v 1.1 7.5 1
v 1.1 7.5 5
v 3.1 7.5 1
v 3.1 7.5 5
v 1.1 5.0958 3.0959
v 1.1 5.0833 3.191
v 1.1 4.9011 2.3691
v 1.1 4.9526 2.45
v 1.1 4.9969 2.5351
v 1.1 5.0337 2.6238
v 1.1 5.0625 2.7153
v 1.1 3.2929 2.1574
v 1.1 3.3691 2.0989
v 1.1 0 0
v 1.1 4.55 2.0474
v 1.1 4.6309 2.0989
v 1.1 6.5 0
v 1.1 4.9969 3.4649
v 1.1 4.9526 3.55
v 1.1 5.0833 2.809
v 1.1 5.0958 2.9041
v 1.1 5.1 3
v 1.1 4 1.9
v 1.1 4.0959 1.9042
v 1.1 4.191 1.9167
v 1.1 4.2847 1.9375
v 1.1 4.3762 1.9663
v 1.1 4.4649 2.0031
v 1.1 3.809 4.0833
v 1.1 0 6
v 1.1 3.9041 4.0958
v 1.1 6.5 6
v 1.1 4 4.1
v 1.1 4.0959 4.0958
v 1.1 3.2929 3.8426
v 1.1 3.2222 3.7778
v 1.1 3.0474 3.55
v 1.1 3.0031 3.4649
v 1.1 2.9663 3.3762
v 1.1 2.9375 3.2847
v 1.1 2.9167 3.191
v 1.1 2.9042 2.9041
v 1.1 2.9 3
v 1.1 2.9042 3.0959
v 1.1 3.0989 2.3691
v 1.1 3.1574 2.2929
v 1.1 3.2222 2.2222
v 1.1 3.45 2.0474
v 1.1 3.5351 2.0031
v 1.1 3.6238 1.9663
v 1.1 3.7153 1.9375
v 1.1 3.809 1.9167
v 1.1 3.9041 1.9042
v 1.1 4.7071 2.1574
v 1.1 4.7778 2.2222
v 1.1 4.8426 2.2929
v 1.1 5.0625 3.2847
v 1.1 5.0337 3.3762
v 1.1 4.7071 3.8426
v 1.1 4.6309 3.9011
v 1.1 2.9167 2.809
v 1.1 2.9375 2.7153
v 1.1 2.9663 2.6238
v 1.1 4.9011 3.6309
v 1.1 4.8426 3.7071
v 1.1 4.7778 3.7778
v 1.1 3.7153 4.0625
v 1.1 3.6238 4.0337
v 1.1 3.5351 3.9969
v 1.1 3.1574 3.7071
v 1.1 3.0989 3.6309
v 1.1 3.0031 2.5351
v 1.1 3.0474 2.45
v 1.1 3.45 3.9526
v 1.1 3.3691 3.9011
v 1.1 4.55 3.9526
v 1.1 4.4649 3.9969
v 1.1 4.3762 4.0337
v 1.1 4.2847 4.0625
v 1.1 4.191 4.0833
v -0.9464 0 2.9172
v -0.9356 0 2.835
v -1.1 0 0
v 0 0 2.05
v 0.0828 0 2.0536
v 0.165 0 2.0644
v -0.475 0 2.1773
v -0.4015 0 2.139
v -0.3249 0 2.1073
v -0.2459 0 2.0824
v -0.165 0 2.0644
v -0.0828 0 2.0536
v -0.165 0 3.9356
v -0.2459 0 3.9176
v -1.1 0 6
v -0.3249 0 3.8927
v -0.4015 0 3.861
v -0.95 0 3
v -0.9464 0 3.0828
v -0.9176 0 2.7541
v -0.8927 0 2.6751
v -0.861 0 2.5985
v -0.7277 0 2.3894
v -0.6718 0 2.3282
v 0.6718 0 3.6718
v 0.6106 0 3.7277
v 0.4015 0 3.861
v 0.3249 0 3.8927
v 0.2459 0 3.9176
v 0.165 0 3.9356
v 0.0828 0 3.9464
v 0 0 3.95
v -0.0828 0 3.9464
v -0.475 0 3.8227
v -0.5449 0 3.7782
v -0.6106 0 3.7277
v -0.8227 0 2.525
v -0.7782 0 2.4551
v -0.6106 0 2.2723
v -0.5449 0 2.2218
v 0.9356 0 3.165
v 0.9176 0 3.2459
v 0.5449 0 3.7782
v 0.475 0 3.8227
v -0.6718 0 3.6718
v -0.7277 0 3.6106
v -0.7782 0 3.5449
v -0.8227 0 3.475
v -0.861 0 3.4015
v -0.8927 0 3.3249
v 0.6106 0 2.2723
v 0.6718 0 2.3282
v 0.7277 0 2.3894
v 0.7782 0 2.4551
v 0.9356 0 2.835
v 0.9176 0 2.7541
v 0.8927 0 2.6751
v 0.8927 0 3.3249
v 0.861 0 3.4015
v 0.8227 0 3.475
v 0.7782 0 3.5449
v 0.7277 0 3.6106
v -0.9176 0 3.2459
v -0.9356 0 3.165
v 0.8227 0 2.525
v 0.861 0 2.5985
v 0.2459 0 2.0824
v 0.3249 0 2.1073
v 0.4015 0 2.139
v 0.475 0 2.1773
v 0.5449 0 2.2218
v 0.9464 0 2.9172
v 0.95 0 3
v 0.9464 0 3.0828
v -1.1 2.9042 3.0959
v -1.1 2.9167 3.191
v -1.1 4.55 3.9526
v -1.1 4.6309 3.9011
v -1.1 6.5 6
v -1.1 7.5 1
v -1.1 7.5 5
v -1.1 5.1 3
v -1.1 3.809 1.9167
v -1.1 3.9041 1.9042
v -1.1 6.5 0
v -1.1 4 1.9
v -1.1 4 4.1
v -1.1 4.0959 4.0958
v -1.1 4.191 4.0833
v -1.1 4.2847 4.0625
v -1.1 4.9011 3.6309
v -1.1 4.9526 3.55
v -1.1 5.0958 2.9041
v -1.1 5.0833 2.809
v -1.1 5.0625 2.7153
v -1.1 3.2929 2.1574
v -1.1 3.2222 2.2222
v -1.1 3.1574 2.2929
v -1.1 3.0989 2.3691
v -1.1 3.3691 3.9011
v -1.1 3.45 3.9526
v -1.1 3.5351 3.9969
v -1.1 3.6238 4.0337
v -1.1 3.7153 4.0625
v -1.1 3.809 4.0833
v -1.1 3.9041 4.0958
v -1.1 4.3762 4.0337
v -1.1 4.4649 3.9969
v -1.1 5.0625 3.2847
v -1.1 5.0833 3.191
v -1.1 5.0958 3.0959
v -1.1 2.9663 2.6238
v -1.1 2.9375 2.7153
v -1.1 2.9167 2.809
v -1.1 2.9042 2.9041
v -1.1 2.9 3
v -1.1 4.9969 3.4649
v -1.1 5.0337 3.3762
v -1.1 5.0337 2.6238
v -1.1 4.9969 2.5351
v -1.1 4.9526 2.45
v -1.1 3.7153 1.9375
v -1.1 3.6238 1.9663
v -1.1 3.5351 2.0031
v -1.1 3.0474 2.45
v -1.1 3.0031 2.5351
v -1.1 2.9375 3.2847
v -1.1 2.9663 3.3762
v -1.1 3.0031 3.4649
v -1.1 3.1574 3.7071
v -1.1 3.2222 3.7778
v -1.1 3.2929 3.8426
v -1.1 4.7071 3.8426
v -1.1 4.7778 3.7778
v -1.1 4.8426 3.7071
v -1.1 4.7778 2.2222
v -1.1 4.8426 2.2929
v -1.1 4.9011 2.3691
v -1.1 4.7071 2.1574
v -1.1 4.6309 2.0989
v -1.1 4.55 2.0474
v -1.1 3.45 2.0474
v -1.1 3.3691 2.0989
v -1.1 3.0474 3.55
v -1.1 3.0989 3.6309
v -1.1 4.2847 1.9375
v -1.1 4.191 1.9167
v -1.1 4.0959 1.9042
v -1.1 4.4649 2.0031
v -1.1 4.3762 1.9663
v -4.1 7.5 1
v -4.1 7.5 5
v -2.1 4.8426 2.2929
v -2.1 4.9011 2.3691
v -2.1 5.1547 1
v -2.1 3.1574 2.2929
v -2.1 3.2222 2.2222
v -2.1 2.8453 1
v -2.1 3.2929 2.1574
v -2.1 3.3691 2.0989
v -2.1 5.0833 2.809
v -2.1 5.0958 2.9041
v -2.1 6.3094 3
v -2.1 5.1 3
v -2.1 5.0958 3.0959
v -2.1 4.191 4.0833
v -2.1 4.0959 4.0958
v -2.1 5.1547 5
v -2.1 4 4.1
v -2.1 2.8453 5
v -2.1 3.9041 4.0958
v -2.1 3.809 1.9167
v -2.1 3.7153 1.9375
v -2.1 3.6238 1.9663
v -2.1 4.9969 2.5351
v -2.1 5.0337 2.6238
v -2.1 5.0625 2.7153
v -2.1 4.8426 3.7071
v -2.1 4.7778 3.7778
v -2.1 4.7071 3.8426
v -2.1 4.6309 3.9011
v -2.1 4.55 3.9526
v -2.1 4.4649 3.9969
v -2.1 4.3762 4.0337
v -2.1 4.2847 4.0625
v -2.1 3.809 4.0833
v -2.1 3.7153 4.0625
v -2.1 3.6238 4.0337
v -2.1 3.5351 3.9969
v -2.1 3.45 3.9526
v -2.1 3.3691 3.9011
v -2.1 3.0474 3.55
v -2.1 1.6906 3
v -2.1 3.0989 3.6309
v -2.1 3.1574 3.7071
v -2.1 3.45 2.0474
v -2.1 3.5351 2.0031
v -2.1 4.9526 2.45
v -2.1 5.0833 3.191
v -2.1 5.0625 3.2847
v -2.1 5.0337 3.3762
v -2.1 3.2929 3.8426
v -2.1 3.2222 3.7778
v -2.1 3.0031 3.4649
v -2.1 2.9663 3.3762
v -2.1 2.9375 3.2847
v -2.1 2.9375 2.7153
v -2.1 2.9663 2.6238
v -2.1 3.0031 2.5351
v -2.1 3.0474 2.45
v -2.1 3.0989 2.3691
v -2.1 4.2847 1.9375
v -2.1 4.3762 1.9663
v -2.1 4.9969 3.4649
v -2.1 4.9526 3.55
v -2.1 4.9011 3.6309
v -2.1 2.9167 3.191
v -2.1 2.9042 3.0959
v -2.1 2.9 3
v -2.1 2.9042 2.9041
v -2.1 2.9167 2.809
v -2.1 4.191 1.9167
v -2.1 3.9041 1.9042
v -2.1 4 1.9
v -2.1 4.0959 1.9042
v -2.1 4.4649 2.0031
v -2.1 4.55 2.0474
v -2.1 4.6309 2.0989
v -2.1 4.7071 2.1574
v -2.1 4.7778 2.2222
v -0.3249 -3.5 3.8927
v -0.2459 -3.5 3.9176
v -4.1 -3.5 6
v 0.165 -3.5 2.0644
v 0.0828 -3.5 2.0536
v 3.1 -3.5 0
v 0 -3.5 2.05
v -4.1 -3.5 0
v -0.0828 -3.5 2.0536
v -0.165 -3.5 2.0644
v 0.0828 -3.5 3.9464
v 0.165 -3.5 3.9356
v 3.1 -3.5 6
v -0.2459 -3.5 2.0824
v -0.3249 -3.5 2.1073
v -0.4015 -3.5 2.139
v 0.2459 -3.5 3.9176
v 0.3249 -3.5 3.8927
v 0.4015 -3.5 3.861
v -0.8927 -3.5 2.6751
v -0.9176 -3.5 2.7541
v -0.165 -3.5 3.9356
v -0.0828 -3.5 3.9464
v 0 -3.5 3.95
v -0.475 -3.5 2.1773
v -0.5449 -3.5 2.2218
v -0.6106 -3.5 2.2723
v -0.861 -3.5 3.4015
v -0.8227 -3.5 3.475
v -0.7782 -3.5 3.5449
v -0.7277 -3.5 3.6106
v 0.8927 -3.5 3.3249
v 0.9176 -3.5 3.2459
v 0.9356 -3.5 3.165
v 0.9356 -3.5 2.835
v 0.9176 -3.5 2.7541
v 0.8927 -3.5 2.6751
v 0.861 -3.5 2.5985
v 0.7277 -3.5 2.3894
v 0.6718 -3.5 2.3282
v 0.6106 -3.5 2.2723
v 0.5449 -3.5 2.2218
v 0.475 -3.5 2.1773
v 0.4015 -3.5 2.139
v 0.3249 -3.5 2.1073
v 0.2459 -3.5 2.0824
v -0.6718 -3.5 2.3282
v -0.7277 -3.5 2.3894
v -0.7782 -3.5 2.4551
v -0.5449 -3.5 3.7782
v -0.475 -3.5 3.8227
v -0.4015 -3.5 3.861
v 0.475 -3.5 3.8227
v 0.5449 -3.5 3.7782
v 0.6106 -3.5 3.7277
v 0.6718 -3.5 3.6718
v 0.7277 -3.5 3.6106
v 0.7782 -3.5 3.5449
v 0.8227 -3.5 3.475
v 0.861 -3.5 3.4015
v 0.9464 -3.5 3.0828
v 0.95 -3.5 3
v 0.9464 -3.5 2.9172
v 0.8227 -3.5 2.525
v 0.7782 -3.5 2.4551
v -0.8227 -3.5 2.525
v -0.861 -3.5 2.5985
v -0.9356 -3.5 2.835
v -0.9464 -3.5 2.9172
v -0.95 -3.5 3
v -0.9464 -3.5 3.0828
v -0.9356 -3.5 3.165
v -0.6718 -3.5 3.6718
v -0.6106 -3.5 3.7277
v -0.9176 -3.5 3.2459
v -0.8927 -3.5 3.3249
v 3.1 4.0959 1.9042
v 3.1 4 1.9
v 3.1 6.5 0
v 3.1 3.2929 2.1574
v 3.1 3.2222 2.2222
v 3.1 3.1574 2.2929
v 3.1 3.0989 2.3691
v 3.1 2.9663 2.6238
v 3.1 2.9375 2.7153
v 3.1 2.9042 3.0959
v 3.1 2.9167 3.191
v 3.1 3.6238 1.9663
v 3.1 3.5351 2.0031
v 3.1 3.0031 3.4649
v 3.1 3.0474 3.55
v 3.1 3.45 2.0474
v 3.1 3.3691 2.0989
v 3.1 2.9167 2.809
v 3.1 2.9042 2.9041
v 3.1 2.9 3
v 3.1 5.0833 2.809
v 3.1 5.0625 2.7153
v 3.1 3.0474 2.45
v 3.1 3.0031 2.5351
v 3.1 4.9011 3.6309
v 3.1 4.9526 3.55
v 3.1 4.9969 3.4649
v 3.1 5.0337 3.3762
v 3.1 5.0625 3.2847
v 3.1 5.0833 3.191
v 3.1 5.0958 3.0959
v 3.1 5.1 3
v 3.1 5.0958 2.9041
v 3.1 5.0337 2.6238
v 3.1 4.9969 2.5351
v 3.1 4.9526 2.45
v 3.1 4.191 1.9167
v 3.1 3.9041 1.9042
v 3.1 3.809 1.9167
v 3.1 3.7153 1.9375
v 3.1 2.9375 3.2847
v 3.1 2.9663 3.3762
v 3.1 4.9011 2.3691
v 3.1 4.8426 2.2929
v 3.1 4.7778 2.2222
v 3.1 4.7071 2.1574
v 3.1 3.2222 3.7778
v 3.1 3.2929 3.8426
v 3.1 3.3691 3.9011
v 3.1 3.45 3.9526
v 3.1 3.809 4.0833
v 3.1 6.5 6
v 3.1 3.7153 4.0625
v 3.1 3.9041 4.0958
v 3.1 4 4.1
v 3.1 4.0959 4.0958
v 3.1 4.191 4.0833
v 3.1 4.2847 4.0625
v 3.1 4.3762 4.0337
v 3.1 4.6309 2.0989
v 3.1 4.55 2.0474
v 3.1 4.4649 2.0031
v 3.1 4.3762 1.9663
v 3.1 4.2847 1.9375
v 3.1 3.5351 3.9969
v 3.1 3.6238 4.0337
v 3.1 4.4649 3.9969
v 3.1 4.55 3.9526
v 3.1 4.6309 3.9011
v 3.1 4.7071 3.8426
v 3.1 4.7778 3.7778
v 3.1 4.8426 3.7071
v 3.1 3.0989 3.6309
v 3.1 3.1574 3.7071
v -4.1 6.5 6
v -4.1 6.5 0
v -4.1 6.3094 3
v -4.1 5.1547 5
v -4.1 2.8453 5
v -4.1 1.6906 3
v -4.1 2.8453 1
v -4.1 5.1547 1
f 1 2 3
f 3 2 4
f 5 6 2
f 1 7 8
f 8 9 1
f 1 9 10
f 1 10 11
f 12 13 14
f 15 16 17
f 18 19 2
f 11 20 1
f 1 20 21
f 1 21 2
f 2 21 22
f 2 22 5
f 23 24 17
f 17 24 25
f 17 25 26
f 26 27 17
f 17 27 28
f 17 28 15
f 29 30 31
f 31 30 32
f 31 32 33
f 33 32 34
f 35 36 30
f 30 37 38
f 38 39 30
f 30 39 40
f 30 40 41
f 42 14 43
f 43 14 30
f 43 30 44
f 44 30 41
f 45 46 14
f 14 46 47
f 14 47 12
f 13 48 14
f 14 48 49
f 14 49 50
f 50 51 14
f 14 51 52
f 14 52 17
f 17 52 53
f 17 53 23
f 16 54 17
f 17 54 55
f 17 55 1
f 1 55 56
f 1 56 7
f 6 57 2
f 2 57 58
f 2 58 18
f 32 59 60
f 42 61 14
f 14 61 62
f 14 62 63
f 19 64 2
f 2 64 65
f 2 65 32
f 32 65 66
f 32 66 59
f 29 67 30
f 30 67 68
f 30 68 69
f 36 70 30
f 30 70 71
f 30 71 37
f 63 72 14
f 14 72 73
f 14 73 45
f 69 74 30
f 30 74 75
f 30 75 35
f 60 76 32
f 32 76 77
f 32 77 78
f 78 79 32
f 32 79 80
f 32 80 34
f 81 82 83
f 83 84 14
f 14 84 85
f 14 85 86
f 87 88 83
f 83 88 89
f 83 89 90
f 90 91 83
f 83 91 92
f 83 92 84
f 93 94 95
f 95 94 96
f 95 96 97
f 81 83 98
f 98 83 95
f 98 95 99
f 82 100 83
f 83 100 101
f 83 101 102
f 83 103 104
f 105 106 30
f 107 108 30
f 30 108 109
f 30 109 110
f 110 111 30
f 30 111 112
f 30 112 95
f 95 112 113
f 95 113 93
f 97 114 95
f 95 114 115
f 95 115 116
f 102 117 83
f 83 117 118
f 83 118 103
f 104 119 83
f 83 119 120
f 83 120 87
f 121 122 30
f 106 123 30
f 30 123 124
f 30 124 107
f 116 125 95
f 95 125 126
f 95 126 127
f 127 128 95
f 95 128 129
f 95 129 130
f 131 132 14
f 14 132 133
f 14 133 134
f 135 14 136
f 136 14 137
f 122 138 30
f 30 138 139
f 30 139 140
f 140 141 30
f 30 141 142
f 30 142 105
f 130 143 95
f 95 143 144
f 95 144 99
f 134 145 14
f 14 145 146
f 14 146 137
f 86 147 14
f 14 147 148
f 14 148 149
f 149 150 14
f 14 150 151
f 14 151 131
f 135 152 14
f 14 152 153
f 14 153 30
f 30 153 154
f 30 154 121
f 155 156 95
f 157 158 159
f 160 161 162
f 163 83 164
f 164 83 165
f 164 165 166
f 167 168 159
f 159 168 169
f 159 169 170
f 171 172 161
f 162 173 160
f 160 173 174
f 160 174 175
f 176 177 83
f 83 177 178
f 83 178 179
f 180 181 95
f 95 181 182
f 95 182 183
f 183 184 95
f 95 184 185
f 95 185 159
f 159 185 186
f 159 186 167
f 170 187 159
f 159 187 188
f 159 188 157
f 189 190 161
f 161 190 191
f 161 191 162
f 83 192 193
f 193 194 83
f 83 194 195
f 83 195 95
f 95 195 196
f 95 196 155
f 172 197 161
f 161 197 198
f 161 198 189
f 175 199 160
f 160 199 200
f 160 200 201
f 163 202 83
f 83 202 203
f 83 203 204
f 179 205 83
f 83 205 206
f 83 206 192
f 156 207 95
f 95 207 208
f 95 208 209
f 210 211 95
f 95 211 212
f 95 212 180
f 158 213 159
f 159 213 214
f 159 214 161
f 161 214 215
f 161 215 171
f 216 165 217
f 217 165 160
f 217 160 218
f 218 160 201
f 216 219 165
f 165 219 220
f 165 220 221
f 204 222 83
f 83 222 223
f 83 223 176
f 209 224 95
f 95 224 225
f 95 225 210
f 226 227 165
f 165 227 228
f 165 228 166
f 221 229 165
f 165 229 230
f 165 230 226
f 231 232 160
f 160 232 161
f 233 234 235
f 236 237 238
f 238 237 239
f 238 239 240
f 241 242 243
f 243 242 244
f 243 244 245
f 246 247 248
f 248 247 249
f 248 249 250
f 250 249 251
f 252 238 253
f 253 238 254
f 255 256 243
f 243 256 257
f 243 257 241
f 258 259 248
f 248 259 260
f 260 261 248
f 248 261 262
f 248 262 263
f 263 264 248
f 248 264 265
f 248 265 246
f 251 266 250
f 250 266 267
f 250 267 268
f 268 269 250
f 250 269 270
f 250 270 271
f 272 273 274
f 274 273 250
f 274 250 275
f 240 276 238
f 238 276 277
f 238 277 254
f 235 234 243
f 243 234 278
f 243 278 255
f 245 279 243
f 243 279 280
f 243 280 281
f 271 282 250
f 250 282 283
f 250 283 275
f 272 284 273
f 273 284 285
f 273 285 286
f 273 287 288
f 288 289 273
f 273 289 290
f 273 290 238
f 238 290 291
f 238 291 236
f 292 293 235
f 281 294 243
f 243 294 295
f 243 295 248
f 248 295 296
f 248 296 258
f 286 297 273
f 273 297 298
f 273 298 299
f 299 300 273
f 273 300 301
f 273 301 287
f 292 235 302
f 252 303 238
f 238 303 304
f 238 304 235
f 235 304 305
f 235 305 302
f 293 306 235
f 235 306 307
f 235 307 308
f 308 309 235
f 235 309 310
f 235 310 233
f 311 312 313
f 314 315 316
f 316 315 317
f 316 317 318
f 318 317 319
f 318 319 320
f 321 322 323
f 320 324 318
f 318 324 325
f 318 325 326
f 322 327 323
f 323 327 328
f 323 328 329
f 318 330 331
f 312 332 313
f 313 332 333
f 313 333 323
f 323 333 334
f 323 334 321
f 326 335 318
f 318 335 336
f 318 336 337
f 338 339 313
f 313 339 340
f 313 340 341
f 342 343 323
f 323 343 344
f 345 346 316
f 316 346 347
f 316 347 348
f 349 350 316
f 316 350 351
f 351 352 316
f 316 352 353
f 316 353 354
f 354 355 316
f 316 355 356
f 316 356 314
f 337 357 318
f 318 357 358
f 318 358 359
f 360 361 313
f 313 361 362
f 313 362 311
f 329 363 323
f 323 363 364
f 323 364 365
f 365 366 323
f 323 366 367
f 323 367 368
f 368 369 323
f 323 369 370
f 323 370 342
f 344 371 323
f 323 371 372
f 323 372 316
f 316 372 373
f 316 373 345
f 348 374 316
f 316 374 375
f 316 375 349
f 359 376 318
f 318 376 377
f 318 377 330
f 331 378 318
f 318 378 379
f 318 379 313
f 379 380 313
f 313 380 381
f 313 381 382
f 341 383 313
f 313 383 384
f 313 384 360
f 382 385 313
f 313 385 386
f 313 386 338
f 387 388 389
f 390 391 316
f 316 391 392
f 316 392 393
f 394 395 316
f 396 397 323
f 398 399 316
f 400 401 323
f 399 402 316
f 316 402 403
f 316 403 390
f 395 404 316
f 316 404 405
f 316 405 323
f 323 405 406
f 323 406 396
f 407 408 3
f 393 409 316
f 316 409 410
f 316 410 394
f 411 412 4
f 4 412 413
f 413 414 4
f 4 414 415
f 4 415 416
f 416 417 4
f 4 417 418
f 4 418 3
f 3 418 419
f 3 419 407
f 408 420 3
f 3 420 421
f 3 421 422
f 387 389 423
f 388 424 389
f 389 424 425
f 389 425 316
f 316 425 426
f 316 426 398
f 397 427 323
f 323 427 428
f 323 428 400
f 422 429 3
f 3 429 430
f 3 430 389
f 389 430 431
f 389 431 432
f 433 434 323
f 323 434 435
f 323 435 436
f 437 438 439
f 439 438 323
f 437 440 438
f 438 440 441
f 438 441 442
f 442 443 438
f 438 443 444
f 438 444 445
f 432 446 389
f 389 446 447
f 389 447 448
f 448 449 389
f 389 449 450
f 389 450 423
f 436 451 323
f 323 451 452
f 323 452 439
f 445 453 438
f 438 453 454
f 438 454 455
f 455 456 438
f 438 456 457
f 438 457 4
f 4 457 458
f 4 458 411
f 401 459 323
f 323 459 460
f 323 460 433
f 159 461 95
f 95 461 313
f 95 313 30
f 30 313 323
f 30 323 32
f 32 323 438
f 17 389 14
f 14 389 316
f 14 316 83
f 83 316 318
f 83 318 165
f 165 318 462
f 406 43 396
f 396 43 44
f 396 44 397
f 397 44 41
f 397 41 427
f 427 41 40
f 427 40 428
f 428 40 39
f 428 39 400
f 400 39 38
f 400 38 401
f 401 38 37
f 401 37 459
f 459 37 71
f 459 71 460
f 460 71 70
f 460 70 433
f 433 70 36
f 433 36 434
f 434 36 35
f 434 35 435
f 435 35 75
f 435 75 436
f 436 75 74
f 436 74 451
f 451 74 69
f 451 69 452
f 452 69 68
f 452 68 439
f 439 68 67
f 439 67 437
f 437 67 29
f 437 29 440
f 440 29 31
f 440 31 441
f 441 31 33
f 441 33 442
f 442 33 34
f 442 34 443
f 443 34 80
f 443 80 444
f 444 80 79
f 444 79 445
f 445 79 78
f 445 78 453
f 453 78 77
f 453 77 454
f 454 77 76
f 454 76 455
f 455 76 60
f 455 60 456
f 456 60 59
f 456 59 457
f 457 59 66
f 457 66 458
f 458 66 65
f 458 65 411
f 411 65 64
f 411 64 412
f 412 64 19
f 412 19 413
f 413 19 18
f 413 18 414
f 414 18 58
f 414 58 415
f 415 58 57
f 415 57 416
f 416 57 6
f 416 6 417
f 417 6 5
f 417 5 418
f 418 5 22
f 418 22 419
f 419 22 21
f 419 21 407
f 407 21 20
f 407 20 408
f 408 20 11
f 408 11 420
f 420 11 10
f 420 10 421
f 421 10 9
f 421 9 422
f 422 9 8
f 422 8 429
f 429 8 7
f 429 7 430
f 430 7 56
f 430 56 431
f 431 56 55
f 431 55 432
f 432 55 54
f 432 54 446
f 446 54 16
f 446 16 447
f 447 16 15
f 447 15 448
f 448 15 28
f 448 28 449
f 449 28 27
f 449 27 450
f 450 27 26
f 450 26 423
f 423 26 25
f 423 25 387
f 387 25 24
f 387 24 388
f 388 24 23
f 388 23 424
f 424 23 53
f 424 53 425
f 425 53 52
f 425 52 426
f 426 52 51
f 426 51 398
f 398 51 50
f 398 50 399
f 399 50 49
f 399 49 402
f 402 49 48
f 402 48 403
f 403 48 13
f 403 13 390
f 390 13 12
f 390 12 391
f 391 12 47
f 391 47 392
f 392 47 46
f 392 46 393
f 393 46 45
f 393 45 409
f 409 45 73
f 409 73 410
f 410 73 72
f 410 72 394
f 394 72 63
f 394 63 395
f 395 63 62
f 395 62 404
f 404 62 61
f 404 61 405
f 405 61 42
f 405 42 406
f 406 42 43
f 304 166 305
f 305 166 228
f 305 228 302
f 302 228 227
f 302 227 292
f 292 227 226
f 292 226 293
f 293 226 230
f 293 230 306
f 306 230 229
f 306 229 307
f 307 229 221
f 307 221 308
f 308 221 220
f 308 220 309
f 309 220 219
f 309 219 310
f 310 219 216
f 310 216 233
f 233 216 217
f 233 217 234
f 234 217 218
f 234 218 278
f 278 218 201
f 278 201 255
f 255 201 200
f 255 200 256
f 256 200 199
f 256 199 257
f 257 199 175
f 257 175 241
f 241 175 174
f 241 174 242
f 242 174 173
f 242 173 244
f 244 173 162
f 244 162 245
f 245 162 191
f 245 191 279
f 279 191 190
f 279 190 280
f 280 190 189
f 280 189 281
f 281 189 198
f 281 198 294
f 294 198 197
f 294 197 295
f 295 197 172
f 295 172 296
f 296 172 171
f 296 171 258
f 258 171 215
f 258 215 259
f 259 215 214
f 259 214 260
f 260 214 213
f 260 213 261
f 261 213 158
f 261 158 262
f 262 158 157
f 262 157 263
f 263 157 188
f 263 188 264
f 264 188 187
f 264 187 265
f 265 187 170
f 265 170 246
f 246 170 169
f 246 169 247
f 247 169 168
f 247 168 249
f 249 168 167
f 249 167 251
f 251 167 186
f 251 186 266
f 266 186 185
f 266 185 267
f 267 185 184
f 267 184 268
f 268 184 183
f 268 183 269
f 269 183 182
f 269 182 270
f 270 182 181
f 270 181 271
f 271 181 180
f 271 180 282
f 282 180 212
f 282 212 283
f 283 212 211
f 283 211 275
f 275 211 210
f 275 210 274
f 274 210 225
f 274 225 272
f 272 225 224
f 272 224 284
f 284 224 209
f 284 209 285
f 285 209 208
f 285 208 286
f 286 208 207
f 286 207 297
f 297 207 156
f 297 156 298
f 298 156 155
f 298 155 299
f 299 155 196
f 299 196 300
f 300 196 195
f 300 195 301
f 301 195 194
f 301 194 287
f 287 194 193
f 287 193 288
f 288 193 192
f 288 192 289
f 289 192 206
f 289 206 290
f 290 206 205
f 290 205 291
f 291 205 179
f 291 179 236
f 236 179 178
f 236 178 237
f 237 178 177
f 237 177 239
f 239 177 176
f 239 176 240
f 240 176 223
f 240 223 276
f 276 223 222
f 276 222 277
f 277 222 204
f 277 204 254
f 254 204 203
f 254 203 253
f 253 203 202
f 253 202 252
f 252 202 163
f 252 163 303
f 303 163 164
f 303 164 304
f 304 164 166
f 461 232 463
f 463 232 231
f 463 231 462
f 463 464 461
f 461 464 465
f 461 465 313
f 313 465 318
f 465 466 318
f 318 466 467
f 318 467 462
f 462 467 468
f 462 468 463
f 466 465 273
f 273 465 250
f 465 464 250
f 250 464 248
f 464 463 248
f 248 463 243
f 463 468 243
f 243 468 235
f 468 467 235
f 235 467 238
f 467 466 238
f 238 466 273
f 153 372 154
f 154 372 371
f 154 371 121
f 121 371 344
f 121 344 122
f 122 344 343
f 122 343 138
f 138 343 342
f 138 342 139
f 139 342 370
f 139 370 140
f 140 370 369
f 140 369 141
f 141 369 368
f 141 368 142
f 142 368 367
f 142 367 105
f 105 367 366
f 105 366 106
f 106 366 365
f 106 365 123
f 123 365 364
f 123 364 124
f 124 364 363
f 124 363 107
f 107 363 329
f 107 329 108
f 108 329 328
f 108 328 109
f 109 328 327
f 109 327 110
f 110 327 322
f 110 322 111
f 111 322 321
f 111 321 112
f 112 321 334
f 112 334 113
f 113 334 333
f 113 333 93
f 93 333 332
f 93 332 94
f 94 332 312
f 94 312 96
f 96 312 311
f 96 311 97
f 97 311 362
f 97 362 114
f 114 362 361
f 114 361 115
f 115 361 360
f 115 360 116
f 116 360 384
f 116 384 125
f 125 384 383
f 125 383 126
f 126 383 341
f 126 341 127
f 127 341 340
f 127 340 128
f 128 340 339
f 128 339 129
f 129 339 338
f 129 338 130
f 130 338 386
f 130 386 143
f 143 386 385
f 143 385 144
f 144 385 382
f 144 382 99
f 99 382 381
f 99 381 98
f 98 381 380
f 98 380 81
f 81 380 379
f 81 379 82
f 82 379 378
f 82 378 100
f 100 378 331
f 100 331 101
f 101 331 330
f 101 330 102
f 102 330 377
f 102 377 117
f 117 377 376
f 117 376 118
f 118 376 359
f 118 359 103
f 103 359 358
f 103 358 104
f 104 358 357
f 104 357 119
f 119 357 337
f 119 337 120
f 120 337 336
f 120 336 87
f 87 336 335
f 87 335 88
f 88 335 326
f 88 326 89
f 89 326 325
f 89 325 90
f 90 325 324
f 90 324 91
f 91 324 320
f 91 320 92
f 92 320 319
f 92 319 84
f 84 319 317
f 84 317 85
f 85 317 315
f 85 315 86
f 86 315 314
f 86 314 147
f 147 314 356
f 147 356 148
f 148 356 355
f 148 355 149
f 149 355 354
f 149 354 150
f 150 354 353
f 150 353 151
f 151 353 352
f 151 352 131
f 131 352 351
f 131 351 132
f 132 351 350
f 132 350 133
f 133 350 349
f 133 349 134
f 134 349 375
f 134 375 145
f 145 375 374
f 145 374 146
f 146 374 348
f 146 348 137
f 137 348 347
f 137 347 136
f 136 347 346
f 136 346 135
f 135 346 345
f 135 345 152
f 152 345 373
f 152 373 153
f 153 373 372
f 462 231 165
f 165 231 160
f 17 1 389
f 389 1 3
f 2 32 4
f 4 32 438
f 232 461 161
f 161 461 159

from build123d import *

# Parameters (mm, degrees)
BOSS_EXTRUDE1_DEPTH = 6
CUT_EXTRUDE1_REACH  = 4
SKETCH2_R           = 1.1
CUT_EXTRUDE2_REACH  = 3
SKETCH3_R           = 1.1
SKETCH5_W           = 6
SKETCH5_H           = 11
BOSS_EXTRUDE2_DEPTH = 2
CUT_EXTRUDE3_REACH  = 13
SKETCH4_R           = 0.95
CHAMFER1_SIZE       = 1


with BuildPart() as part:
    # Sketch1 → Boss-Extrude1 (new body)
    with BuildSketch(Plane.XY):
        Polygon((-1.1, 7.5), (-1.1, 0), (1.1, 0), (1.1, 7.5), (3.1, 7.5), (3.1, -3.5), (-2.1, -3.5), (-2.1, 7.5), align=None)
    extrude(amount=BOSS_EXTRUDE1_DEPTH)

    # Sketch2 → Cut-Extrude1 (cut, up to next)
    with BuildSketch(Plane.ZY.offset(-1.1), mode=Mode.PRIVATE) as cut_extrude1_sk1:
        with Locations((3, 4)):
            Circle(SKETCH2_R)
    cut_extrude1_tool1 = extrude(cut_extrude1_sk1.sketch, amount=-CUT_EXTRUDE1_REACH, mode=Mode.PRIVATE) & part.part
    add(cut_extrude1_tool1.solids().sort_by_distance((1.1, 4, 3))[0], mode=Mode.SUBTRACT)

    # Sketch3 → Cut-Extrude2 (cut, up to next)
    with BuildSketch(Plane(origin=(-1.1, 0, 0), x_dir=(0, 0, -1), z_dir=(1, 0, 0)), mode=Mode.PRIVATE) as cut_extrude2_sk1:
        with Locations((-3, 4)):
            Circle(SKETCH3_R)
    cut_extrude2_tool1 = extrude(cut_extrude2_sk1.sketch, amount=-CUT_EXTRUDE2_REACH, mode=Mode.PRIVATE) & part.part
    add(cut_extrude2_tool1.solids().sort_by_distance((-1.1, 4, 3))[0], mode=Mode.SUBTRACT)

    # Sketch5 → Boss-Extrude2 (add)
    with BuildSketch(Plane.ZY.offset(2.1)):
        with Locations((3, 2)):
            Rectangle(SKETCH5_W, SKETCH5_H)
        Polygon((5, 2.845299462), (5, 5.154700538), (3, 6.309401077), (1, 5.154700538), (1, 2.845299462), (3, 1.690598923), align=None, mode=Mode.SUBTRACT)
    extrude(amount=BOSS_EXTRUDE2_DEPTH)

    # Sketch4 → Cut-Extrude3 (cut, up to next)
    with BuildSketch(Plane.XZ.offset(3.5), mode=Mode.PRIVATE) as cut_extrude3_sk1:
        with Locations((0, 3)):
            Circle(SKETCH4_R)
    cut_extrude3_tool1 = extrude(cut_extrude3_sk1.sketch, amount=-CUT_EXTRUDE3_REACH, mode=Mode.PRIVATE) & part.part
    add(cut_extrude3_tool1.solids().sort_by_distance((0, -3.5, 3))[0], mode=Mode.SUBTRACT)

    # Chamfer1
    chamfer1_edges = [part.edges().sort_by_distance(p)[0] for p in [
        (2.1, 7.5, 0),
        (-2.6, 7.5, 6),
        (2.1, 7.5, 6),
        (-2.6, 7.5, 0),
    ]]
    chamfer(chamfer1_edges, length=CHAMFER1_SIZE)


solid = part.part
